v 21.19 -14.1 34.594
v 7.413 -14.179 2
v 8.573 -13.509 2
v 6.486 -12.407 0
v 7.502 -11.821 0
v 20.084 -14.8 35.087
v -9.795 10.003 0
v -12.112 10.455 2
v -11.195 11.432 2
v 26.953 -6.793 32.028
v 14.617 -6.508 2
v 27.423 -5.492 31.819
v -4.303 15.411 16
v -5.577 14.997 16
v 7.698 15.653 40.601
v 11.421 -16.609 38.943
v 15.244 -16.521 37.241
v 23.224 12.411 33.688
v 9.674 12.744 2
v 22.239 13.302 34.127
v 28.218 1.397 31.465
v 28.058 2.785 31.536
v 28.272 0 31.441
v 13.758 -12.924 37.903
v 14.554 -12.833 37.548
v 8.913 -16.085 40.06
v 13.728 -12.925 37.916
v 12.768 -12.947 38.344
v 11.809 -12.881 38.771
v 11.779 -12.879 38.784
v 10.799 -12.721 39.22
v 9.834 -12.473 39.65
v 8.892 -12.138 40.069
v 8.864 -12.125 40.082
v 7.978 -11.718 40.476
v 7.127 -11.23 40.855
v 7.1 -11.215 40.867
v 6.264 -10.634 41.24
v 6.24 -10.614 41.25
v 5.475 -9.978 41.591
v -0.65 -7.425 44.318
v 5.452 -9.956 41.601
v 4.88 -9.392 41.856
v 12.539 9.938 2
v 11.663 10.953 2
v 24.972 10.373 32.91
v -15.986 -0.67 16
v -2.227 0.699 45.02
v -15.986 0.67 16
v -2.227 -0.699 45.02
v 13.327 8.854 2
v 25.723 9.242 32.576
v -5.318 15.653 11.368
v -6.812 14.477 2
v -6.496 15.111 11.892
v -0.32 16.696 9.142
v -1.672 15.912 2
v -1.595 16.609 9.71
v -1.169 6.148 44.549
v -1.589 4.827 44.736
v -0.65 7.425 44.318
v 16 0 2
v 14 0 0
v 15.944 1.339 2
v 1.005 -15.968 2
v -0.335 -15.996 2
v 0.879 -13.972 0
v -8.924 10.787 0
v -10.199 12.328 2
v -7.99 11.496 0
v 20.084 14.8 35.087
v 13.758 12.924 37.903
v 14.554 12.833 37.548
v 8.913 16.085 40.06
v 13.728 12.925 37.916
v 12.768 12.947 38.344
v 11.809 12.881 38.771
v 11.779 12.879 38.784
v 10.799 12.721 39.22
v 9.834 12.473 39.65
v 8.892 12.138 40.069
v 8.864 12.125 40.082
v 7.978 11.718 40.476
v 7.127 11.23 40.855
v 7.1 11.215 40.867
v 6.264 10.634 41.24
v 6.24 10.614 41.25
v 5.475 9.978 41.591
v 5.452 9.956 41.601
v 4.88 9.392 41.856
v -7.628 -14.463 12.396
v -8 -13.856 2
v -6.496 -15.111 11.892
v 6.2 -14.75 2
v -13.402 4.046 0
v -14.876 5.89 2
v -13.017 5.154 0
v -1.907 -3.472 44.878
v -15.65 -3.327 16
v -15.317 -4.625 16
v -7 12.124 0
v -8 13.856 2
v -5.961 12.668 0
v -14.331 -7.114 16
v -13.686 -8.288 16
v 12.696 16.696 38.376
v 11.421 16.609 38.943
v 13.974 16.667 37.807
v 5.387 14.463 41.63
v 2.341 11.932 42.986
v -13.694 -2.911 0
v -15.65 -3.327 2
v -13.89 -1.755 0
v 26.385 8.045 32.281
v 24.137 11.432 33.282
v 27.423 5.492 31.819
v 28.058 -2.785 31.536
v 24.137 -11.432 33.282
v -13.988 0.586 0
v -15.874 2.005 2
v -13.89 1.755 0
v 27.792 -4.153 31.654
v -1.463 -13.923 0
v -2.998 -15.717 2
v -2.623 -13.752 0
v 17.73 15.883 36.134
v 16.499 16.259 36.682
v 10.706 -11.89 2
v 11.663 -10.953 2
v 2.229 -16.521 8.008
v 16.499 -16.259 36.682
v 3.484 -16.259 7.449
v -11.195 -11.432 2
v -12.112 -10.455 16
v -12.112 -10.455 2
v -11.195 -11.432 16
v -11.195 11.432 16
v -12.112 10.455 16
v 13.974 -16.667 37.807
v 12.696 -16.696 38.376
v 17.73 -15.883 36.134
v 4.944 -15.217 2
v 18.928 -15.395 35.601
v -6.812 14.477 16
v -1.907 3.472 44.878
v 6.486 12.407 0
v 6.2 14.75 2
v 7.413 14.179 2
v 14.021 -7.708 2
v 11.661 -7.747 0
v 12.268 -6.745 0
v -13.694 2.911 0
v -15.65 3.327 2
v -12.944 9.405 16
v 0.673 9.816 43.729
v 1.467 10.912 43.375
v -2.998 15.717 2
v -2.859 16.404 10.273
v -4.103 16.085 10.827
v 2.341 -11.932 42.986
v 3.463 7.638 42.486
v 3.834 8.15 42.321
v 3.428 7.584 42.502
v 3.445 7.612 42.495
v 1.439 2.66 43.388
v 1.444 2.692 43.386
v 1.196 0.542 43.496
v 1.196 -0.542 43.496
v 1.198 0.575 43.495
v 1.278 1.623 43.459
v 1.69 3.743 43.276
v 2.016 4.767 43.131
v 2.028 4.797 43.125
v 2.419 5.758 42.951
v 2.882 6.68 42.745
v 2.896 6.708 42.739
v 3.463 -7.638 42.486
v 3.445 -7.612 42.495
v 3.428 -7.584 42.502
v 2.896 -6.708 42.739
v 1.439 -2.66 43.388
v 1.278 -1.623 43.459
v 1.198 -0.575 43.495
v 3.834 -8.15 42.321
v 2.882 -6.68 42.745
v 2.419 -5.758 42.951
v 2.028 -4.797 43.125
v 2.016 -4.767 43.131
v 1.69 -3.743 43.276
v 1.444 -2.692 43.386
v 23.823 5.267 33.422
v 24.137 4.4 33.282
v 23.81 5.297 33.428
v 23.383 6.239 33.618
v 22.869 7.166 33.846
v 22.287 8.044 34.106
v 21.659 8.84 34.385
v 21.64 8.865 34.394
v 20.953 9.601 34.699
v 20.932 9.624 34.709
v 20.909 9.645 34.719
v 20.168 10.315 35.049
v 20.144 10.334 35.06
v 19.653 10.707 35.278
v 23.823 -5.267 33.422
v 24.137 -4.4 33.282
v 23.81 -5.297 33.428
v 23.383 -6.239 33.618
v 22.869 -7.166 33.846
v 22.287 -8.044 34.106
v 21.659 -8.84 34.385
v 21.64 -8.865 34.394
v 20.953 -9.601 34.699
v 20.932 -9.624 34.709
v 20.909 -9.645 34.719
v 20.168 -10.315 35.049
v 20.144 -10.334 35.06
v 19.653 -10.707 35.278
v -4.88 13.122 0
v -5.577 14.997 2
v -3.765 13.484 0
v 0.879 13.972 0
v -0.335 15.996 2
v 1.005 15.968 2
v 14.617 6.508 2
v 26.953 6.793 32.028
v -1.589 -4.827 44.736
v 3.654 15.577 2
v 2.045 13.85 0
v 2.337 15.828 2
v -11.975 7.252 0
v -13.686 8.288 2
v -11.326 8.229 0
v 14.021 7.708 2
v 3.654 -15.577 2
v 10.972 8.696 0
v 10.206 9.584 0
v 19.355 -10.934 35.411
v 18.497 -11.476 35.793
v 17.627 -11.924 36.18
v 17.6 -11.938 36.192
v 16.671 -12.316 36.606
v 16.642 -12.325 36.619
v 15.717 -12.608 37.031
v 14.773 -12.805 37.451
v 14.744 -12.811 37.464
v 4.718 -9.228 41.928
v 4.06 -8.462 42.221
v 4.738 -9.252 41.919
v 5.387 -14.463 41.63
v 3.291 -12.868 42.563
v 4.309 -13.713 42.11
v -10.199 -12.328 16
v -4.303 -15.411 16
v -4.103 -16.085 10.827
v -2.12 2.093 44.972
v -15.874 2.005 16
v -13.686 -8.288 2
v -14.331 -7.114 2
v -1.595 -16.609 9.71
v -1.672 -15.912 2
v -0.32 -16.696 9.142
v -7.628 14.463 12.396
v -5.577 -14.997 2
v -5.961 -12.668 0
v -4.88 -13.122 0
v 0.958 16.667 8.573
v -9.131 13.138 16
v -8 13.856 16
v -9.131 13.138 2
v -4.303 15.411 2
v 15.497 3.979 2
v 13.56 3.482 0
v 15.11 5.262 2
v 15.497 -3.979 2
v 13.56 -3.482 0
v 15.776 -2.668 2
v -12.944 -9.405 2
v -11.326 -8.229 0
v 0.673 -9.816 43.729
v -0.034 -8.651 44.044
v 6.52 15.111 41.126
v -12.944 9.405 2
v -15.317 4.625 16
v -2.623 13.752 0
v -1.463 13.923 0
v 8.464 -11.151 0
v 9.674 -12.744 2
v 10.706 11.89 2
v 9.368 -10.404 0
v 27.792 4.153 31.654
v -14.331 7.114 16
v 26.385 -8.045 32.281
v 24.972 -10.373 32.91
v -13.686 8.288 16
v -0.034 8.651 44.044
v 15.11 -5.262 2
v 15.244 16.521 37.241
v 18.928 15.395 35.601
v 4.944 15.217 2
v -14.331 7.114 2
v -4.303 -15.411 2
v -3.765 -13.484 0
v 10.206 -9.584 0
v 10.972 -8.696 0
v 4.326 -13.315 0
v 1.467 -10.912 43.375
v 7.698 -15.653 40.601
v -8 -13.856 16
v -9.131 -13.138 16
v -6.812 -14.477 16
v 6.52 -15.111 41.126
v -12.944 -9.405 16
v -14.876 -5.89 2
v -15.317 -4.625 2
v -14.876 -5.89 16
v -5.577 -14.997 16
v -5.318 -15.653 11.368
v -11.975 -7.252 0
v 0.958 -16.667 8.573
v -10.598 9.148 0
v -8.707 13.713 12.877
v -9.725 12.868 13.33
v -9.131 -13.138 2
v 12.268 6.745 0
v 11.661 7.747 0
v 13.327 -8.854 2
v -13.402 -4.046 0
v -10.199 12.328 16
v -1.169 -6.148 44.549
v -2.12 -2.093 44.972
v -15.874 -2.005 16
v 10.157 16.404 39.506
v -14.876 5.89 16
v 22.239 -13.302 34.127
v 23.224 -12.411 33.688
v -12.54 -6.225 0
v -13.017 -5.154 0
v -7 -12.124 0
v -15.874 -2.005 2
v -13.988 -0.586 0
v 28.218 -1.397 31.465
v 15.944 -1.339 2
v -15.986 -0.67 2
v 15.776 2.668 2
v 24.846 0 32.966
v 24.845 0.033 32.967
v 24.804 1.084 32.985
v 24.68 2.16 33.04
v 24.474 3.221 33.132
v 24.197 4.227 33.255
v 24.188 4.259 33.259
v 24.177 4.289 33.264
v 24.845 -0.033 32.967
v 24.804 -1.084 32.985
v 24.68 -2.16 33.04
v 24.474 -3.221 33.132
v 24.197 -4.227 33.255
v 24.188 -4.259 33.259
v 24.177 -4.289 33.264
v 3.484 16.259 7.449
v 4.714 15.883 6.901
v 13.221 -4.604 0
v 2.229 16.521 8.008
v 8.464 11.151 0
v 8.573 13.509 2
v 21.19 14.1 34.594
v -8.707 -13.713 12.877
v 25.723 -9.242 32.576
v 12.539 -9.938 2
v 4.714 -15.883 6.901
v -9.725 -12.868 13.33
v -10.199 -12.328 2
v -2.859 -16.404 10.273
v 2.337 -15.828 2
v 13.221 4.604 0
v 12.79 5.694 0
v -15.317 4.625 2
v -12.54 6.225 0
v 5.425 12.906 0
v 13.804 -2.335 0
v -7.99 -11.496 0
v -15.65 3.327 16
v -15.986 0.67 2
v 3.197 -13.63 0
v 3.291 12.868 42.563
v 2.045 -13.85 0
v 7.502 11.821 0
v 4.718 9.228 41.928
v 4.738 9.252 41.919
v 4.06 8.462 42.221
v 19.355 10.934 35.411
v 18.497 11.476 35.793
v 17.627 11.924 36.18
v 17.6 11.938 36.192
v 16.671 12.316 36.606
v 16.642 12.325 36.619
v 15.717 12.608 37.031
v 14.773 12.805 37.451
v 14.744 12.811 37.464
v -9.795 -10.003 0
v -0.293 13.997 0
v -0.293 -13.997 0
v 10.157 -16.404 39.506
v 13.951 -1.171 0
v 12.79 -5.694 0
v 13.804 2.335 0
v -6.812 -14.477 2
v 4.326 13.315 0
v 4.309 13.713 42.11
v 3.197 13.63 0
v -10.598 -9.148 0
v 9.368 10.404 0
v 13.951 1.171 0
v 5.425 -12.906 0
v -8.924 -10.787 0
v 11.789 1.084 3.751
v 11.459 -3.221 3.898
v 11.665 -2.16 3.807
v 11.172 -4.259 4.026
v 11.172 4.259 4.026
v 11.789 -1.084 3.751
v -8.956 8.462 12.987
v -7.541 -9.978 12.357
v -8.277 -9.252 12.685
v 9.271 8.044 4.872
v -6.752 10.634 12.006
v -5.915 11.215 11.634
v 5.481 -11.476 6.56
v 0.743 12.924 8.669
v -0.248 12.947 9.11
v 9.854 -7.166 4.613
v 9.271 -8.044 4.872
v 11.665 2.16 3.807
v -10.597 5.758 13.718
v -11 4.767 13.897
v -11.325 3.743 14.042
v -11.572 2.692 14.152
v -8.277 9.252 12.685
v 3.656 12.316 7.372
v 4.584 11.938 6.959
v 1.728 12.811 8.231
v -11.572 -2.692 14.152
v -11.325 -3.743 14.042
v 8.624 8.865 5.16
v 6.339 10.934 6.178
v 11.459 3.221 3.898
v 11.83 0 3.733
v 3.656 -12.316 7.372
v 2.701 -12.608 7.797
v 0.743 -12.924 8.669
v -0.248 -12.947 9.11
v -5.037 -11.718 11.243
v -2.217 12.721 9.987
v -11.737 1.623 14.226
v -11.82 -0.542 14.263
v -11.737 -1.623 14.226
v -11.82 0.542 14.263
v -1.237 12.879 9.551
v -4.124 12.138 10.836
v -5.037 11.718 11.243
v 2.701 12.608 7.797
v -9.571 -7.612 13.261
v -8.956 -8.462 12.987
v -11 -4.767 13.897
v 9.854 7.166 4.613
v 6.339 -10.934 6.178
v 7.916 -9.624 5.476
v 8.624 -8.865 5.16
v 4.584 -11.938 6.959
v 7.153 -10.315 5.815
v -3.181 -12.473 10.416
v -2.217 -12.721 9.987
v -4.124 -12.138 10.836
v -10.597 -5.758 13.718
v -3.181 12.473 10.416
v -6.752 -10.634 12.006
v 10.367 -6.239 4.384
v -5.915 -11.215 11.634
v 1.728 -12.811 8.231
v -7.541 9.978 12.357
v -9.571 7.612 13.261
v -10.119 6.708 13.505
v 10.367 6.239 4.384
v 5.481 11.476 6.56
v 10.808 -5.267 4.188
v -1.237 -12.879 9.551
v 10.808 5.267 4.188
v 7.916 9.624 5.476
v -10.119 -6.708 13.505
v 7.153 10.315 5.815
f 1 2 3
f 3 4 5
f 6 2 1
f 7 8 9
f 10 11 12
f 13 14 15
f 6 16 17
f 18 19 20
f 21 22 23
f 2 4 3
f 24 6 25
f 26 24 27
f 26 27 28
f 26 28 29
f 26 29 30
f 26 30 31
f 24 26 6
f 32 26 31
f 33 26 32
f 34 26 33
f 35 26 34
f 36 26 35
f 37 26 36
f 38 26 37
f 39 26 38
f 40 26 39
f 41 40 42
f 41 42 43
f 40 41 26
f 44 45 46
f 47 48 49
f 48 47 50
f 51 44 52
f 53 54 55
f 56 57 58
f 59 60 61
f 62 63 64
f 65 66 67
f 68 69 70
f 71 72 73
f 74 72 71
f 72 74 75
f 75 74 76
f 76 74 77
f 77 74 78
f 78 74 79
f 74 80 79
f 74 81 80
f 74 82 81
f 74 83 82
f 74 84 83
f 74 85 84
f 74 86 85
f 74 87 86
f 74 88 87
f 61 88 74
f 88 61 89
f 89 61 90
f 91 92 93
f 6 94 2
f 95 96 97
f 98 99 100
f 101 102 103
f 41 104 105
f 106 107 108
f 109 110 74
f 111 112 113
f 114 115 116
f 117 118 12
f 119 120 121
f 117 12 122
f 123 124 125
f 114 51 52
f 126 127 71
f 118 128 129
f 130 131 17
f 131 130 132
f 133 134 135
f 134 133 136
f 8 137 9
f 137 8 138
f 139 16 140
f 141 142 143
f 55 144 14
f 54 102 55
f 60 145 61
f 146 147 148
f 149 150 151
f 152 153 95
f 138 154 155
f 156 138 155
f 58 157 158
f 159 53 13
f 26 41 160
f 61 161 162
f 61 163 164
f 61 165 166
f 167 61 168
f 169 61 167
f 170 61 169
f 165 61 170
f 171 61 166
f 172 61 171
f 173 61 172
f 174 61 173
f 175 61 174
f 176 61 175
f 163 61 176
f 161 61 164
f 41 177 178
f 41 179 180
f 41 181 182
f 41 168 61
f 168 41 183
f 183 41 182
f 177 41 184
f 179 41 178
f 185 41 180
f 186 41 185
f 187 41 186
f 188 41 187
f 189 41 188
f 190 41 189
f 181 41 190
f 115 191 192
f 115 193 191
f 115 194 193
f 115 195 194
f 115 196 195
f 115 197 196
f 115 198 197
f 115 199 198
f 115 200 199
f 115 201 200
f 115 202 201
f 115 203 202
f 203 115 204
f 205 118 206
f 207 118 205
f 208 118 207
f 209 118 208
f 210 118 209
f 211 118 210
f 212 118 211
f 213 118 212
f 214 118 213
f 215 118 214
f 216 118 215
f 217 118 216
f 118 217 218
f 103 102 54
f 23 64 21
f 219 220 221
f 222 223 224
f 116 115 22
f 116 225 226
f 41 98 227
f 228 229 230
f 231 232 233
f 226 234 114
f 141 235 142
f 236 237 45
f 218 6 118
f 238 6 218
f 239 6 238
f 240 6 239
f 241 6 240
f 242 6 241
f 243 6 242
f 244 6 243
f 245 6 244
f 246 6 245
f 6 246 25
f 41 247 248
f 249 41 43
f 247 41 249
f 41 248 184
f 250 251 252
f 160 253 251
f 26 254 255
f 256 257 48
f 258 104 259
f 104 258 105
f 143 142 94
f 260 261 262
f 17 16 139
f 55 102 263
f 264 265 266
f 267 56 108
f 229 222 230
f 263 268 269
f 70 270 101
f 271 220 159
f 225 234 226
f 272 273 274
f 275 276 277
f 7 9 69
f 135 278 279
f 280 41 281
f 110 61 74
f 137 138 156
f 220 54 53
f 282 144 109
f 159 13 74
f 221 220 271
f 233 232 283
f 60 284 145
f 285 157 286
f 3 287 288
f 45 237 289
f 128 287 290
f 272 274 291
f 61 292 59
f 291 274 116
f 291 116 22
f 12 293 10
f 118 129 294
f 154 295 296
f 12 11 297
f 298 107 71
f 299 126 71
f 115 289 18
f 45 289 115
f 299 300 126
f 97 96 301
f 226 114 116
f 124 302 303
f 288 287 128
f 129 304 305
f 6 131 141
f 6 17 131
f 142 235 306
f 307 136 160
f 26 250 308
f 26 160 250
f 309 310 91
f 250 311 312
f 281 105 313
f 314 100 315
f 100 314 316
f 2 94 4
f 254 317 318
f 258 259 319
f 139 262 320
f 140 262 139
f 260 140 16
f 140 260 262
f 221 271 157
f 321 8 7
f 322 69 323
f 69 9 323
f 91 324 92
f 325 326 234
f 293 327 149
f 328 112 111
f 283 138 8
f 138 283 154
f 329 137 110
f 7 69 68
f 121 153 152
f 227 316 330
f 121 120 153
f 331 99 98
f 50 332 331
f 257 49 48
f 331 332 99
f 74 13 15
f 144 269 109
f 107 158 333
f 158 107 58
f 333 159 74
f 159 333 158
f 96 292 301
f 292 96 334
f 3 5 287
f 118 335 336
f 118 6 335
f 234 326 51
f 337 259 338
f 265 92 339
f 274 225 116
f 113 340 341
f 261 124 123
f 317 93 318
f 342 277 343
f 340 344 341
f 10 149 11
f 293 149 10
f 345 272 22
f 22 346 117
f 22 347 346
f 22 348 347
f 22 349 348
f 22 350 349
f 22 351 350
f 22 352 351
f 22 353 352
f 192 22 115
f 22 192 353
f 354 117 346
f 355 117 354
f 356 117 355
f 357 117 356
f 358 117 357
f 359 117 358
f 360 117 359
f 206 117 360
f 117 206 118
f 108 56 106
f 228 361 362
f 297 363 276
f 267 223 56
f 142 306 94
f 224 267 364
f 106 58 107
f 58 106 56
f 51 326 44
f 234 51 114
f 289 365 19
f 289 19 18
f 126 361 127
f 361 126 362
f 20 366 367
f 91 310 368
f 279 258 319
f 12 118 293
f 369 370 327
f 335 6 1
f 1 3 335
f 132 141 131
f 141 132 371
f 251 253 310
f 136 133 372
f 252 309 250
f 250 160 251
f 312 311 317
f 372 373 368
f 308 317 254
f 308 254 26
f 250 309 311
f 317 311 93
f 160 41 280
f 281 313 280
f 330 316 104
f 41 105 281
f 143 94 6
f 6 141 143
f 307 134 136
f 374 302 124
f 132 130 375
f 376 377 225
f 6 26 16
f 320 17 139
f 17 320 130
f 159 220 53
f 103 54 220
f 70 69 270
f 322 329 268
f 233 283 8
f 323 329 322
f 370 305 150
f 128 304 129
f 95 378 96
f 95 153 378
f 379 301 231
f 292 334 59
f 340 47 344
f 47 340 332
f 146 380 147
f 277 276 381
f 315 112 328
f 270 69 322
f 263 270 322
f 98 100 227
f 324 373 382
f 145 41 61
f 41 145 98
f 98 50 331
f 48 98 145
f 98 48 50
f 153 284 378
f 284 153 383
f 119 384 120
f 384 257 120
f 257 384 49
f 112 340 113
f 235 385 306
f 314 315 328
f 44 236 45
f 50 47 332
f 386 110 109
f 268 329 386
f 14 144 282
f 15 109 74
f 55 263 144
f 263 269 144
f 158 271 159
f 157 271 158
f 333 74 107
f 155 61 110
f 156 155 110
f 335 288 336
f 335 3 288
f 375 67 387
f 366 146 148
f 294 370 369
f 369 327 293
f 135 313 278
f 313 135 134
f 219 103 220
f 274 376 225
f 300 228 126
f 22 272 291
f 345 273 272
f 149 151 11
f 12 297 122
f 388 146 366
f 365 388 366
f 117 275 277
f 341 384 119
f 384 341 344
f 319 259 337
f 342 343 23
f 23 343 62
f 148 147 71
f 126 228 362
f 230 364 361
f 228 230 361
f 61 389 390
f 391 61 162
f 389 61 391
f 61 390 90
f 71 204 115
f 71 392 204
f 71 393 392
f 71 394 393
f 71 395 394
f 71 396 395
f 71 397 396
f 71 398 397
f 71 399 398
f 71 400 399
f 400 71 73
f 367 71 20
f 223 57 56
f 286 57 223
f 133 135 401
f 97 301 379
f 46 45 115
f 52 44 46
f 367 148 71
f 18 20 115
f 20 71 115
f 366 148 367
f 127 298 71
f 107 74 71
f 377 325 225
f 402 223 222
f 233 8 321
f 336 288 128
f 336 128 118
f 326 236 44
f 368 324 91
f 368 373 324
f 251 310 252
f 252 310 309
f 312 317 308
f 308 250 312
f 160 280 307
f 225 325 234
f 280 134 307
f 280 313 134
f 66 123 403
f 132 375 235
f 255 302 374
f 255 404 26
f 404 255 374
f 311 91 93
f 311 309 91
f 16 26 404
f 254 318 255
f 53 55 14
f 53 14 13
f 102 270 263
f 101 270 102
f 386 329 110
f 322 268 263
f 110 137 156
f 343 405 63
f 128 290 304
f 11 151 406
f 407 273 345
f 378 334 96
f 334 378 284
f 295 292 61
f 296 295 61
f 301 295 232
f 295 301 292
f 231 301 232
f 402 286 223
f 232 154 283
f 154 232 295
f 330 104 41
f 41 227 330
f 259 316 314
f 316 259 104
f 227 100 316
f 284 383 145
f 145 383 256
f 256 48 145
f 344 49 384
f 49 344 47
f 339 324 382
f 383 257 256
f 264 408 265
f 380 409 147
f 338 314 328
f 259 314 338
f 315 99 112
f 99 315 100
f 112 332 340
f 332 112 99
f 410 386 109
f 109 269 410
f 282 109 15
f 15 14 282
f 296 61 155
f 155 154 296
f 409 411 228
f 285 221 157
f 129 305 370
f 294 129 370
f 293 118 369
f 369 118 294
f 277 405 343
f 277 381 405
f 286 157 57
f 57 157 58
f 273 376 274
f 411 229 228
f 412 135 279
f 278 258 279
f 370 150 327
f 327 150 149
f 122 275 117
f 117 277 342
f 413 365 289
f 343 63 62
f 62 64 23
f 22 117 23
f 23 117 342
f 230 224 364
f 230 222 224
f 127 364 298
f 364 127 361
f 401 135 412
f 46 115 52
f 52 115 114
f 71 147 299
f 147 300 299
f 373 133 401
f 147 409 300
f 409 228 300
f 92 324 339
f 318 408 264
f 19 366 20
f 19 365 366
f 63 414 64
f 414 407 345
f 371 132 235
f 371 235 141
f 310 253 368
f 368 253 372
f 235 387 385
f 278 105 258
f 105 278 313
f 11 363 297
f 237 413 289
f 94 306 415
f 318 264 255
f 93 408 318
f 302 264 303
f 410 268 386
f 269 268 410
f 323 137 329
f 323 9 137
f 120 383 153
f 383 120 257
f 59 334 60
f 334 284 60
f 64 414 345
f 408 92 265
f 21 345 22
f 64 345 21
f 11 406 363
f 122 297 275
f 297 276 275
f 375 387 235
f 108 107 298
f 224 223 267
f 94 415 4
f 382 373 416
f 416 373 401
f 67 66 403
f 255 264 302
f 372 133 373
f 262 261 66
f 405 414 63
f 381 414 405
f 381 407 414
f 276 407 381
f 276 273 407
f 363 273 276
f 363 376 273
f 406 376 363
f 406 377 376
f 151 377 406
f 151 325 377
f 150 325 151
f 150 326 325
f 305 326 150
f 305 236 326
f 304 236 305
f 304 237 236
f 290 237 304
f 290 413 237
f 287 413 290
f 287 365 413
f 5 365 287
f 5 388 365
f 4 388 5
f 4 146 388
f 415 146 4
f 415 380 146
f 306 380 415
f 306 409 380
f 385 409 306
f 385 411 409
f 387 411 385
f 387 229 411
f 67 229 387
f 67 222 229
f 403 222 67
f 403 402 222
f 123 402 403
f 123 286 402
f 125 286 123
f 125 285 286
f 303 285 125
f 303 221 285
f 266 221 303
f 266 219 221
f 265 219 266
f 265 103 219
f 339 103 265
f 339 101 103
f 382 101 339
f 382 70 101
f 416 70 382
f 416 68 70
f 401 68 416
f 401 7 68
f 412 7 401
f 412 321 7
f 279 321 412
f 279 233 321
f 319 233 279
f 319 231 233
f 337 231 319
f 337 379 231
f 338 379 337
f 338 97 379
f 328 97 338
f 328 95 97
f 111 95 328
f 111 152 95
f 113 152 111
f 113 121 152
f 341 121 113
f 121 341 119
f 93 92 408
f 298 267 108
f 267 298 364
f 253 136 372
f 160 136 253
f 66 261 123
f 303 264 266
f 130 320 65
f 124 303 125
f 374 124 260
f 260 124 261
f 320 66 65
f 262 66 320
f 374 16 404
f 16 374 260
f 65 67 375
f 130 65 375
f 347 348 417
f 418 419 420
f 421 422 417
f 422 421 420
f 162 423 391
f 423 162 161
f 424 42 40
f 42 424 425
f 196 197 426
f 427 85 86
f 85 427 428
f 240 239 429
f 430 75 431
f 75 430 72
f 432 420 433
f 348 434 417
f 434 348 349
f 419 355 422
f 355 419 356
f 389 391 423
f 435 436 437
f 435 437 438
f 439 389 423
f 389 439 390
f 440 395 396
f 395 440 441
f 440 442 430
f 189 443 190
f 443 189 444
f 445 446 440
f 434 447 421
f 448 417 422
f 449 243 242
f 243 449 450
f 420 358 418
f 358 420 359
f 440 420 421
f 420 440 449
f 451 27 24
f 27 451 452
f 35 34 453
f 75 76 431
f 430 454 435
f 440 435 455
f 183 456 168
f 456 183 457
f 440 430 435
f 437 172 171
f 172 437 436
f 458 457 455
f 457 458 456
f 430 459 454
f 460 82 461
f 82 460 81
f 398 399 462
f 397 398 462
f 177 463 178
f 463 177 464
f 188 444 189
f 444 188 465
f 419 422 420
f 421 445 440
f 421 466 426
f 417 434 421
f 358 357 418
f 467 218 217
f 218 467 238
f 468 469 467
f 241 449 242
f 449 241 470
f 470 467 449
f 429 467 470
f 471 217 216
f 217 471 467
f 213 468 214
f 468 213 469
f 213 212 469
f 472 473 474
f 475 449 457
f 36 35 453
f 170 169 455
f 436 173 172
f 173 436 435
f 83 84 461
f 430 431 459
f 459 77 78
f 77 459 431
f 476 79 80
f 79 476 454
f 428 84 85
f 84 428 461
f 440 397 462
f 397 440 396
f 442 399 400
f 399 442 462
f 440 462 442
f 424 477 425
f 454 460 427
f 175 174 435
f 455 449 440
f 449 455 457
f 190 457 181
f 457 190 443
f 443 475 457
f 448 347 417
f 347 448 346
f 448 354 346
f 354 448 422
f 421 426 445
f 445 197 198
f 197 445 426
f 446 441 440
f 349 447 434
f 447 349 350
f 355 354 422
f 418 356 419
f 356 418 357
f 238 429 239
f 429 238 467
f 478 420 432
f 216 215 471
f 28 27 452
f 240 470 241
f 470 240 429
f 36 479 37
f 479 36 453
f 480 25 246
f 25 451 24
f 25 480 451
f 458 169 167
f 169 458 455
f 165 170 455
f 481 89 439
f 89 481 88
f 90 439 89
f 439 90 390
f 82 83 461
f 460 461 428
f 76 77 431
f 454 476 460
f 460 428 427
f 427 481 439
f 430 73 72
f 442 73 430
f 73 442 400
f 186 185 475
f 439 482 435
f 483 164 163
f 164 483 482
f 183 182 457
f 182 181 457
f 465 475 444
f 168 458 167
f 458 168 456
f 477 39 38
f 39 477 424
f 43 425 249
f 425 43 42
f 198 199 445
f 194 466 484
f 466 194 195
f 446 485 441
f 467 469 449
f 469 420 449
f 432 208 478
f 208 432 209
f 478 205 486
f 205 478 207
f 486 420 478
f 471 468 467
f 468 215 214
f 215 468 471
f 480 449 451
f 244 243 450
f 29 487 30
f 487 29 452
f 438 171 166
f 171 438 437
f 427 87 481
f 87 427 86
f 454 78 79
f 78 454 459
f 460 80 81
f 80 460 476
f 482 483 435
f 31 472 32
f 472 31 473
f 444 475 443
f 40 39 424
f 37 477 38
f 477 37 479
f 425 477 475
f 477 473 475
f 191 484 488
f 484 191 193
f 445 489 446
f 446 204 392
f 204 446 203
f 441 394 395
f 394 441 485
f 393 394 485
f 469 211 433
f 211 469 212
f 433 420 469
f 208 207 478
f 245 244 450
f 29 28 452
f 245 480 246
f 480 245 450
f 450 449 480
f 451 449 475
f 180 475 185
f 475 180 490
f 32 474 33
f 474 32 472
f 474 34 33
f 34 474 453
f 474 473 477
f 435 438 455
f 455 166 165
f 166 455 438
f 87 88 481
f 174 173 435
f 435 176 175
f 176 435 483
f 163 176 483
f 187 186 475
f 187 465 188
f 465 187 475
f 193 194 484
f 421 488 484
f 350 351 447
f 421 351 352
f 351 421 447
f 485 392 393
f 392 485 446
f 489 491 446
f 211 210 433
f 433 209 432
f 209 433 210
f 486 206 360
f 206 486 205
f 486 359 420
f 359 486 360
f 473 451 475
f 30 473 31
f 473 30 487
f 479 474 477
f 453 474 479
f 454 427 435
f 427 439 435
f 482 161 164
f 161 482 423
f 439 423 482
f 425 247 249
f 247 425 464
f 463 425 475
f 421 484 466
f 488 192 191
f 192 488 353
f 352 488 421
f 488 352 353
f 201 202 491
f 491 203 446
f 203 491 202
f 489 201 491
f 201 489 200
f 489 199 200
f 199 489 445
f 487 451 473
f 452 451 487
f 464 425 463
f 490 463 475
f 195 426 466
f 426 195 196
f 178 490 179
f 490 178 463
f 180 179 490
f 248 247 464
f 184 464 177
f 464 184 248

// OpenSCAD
/*
 * Plastic foot for Weber kettle grill
 */
$fn=75;

leg_d=25.4;     // mm
leg_angle=24;   // degrees

adjustment=0.5;

foot_d=32;
foot_height=32;
wall_thickness=4;

module leg(dia,height) {
  translate([0,0,9]) rotate([0,leg_angle,0]) {
    cylinder(d=dia,h=height);
  }
}

difference() {
  hull() {
    cylinder(d=foot_d-4);
    translate([0,0,2]) cylinder(d=foot_d,h=(foot_height/2)-2);
    leg(leg_d+(2*wall_thickness),foot_height);
  }
  leg(leg_d+adjustment,foot_height+1);
}
